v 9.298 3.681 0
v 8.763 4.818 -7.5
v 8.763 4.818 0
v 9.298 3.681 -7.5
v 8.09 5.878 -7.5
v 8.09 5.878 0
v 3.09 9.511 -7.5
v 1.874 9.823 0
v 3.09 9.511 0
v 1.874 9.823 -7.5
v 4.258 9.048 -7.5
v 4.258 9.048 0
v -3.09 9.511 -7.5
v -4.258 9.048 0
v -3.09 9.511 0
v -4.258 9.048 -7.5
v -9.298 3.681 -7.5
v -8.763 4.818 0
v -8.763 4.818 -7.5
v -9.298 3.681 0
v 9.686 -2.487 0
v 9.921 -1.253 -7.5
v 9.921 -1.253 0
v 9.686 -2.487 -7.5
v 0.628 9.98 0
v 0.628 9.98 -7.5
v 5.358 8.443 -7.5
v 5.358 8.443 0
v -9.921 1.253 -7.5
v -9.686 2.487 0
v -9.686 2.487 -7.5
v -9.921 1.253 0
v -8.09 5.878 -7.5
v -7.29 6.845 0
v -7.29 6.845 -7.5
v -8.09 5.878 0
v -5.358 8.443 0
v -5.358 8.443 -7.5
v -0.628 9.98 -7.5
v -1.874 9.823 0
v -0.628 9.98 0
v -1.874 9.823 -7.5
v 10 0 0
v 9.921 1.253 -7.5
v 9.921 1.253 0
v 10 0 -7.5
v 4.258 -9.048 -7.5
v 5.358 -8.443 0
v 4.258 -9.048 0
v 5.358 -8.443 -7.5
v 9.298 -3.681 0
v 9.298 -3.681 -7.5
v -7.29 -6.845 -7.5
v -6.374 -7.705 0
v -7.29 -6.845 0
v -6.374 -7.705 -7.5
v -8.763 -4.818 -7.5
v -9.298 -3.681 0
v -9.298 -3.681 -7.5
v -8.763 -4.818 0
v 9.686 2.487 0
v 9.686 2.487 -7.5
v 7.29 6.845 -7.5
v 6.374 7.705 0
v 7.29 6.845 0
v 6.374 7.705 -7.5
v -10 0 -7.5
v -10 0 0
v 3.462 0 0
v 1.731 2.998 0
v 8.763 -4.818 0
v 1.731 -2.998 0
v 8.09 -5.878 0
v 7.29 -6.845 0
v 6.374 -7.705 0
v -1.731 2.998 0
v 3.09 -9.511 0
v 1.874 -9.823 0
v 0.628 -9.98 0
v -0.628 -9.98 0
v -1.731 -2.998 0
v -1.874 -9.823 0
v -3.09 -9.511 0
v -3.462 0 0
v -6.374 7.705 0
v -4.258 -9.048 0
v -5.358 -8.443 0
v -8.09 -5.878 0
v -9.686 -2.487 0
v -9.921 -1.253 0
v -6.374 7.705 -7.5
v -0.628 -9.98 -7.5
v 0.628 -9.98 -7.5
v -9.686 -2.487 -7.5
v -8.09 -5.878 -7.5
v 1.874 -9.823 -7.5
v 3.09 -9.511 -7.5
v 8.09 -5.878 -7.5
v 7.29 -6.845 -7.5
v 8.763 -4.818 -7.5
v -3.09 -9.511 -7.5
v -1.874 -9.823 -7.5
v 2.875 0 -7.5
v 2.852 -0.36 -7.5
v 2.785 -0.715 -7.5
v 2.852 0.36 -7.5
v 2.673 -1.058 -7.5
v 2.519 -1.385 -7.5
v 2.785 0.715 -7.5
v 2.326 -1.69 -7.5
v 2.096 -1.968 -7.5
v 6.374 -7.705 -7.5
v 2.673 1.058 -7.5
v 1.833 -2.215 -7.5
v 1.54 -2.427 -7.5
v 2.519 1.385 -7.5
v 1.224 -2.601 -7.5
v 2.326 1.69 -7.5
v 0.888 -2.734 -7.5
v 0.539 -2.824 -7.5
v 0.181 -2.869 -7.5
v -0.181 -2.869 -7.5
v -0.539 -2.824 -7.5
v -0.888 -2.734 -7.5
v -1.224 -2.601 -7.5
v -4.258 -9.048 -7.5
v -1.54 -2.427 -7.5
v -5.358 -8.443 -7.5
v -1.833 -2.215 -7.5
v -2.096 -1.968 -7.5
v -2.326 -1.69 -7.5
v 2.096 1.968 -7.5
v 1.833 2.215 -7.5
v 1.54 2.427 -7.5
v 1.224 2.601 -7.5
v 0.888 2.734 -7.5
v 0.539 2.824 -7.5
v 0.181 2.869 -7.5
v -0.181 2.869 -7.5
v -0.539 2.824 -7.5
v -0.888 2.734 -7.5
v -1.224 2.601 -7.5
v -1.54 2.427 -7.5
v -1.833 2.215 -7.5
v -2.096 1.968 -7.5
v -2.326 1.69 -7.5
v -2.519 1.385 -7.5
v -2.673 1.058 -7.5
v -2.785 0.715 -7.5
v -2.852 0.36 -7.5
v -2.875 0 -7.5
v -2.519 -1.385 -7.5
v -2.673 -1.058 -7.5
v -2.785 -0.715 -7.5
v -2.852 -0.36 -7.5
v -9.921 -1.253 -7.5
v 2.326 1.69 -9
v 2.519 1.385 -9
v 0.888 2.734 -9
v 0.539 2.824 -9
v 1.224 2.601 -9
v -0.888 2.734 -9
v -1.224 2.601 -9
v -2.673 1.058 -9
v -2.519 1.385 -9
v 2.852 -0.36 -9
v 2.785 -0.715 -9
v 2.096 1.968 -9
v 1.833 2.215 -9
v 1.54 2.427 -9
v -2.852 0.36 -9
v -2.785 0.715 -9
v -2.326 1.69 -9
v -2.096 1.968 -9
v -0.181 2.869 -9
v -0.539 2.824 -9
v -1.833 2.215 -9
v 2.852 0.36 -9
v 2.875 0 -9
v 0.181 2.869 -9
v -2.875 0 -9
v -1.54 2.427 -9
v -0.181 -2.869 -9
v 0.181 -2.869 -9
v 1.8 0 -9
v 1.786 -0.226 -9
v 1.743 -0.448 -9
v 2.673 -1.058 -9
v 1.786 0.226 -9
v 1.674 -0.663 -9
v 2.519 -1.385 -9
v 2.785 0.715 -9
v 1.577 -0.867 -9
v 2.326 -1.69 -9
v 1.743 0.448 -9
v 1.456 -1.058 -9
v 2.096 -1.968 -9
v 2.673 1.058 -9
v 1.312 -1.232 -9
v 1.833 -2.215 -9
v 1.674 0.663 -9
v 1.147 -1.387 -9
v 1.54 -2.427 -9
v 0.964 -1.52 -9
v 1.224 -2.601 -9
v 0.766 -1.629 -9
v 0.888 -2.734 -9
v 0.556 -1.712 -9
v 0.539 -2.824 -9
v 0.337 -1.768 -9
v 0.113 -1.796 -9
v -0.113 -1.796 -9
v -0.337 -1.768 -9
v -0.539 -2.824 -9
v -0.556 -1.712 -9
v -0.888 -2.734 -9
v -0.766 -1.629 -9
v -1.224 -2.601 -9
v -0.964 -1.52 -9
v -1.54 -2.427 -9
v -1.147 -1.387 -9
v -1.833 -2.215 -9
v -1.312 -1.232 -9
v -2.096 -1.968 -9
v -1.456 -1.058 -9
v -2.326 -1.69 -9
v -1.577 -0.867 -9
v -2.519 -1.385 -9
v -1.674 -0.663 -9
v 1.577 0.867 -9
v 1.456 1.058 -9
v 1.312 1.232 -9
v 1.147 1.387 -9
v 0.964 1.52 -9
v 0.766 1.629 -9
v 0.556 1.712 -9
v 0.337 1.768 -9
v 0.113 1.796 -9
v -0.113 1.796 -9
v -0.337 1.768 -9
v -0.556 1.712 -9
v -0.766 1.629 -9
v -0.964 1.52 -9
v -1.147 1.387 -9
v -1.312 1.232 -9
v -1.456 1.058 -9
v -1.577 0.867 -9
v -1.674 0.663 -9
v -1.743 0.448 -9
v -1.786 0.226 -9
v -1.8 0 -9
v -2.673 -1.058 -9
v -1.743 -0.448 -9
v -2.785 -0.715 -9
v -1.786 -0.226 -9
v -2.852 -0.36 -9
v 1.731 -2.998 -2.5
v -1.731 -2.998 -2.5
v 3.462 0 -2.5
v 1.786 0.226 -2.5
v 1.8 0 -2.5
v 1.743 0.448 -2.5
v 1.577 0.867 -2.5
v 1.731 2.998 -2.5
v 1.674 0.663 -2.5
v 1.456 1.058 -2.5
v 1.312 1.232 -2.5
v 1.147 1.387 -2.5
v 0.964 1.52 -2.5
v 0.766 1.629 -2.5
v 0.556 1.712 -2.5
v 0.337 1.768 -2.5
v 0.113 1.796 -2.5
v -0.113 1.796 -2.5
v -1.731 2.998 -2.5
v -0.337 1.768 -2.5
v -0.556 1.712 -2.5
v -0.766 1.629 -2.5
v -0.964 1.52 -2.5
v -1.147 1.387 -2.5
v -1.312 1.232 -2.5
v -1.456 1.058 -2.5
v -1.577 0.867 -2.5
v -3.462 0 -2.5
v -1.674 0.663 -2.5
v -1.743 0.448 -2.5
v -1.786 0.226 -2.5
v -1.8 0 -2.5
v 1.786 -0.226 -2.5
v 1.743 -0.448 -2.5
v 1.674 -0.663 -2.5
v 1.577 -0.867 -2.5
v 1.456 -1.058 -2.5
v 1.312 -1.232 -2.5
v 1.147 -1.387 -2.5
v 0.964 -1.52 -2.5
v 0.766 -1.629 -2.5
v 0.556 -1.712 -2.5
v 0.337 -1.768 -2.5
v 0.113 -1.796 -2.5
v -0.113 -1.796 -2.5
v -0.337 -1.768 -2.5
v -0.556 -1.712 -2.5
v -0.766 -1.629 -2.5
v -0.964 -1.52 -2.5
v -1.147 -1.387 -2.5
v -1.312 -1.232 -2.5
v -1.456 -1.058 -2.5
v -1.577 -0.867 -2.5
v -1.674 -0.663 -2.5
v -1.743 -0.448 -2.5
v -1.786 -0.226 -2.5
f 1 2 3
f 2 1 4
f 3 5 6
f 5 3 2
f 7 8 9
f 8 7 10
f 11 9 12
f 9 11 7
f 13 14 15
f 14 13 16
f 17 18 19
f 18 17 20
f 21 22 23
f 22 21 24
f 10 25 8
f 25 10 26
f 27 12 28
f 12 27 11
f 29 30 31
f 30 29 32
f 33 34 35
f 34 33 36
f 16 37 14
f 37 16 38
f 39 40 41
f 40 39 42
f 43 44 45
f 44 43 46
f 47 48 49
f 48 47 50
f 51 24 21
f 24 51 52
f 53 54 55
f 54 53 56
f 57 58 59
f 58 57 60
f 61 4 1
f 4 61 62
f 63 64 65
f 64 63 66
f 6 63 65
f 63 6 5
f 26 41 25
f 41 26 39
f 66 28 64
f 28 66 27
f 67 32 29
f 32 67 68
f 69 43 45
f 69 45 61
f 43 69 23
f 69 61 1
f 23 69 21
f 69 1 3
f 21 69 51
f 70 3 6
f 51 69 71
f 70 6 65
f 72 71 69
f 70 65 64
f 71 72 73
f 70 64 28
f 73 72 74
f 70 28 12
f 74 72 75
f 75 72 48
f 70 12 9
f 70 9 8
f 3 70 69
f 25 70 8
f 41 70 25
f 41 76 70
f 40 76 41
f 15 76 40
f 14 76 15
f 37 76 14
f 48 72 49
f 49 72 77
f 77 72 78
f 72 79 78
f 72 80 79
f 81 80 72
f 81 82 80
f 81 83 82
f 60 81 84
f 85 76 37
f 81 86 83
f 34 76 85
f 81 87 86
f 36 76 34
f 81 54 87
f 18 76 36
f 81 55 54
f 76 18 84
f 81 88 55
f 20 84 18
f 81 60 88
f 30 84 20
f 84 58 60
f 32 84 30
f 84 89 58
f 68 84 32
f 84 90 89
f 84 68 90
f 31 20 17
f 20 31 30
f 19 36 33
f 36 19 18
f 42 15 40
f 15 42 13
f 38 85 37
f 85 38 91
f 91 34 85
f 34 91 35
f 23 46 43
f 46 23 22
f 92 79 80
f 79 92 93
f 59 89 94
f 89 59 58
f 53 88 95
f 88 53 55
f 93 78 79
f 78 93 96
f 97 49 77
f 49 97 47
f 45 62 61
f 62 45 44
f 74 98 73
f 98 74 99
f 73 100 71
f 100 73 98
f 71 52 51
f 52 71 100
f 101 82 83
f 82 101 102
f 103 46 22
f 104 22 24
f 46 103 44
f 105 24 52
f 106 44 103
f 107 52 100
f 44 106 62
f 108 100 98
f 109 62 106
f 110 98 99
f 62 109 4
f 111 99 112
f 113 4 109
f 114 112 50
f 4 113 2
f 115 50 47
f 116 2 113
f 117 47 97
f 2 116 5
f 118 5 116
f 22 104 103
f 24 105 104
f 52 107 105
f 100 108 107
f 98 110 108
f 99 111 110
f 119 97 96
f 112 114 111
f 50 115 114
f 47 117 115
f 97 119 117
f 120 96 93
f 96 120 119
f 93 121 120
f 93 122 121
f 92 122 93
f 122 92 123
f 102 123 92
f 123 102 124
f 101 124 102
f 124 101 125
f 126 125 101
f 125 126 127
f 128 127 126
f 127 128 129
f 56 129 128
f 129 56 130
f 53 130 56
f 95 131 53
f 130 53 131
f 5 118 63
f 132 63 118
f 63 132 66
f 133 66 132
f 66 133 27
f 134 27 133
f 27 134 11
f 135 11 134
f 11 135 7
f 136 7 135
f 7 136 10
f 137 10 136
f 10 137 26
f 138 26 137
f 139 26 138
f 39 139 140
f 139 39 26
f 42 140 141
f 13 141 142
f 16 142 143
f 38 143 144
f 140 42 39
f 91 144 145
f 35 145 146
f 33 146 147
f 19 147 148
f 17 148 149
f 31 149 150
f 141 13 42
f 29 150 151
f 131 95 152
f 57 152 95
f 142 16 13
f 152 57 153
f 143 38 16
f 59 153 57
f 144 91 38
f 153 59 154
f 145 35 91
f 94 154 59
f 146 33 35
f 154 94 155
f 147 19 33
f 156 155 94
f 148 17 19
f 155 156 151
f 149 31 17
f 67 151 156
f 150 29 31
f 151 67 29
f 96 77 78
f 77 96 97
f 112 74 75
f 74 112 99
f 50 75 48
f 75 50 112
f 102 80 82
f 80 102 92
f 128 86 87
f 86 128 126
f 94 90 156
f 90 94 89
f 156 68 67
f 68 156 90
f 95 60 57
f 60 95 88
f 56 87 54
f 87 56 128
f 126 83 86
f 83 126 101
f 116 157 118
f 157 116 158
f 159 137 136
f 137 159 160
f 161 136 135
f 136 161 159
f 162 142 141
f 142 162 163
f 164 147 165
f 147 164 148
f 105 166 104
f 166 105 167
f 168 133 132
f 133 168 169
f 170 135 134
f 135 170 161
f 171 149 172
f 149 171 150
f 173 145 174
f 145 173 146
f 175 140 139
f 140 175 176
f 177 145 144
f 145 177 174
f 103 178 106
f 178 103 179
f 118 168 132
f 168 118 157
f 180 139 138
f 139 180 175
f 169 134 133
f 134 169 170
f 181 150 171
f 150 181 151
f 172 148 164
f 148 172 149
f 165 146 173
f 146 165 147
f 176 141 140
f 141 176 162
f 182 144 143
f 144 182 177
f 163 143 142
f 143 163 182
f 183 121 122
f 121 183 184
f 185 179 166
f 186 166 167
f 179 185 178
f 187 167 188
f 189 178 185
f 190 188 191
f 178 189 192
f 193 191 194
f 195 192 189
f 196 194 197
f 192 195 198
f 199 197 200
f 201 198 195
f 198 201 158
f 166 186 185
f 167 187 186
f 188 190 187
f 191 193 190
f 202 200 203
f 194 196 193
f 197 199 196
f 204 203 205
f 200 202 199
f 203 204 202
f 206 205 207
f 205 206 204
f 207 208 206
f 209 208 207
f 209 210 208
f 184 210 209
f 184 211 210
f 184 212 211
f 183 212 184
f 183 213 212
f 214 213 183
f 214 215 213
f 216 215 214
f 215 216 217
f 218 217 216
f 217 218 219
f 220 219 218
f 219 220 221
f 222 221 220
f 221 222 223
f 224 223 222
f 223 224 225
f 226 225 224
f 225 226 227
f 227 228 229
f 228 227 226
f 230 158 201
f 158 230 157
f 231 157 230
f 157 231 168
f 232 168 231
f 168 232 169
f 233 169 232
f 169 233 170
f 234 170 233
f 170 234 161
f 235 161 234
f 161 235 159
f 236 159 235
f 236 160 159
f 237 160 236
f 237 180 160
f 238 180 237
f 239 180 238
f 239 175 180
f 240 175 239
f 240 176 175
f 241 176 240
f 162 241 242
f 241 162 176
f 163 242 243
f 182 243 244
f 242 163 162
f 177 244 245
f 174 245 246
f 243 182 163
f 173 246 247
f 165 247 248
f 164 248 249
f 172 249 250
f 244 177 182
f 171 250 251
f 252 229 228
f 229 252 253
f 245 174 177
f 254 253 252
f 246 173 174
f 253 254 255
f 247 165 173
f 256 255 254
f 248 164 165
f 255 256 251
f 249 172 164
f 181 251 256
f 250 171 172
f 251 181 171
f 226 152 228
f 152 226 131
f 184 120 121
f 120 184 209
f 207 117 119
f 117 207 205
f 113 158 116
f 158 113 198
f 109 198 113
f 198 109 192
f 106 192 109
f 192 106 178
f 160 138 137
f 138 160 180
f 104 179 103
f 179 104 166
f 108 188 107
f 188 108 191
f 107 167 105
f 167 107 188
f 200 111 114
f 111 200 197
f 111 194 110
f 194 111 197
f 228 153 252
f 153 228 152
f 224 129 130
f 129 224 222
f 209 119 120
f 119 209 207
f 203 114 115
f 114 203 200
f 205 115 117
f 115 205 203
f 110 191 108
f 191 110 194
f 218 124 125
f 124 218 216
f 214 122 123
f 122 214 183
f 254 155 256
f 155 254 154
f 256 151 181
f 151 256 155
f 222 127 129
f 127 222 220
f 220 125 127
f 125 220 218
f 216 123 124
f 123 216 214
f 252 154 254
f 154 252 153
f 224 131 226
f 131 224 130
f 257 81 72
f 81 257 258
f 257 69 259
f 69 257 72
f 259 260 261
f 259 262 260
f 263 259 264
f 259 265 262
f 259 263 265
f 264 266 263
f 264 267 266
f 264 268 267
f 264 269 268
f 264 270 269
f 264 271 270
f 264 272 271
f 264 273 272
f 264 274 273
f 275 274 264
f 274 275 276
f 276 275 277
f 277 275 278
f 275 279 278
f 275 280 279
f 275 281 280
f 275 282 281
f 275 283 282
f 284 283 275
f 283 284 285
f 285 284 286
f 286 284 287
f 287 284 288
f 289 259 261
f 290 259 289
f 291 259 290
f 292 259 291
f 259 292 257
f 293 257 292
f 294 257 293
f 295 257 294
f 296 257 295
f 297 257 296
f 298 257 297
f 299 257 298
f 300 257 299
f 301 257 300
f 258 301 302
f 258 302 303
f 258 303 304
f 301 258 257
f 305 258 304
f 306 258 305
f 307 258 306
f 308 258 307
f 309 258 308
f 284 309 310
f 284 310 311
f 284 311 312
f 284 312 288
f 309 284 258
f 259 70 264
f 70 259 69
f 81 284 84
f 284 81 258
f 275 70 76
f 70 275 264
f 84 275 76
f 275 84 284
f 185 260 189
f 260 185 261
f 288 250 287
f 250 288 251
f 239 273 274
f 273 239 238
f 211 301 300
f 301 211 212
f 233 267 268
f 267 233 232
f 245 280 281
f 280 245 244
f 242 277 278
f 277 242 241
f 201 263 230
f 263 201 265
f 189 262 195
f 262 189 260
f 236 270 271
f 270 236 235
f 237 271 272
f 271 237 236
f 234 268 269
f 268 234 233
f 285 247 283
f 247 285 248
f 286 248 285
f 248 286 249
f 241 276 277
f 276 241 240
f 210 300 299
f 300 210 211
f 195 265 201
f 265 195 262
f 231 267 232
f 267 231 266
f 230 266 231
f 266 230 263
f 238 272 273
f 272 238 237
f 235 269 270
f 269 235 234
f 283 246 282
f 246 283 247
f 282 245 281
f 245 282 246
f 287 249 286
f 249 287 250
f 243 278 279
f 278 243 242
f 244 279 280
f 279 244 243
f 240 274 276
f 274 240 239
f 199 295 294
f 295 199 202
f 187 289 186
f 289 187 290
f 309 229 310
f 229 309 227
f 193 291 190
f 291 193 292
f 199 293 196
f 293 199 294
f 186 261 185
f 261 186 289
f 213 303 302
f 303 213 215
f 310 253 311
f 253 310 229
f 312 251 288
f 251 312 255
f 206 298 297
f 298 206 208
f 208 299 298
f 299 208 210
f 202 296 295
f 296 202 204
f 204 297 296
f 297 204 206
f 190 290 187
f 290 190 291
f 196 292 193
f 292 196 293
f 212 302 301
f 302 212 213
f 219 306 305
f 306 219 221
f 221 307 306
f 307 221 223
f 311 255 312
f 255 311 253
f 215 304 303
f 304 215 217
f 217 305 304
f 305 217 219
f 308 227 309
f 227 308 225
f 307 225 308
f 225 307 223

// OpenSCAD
$fn = 50;


difference() {
	union() {
		translate(v = [0, 0, -7.5000000000]) {
			cylinder(h = 7.5000000000, r = 10.0000000000);
		}
		#translate(v = [0, 0, -9.0000000000]) {
			cylinder(h = 9, r = 2.8750000000);
		}
	}
	union() {
		translate(v = [0, 0, 0]) {
			rotate(a = [0, 0, 0]) {
				difference() {
					union() {
						translate(v = [0, 0, -2.5000000000]) {
							linear_extrude(height = 2.5000000000) {
								polygon(points = [[3.4620000000, 0.0000000000], [1.7310000000, 2.9981799479], [-1.7310000000, 2.9981799479], [-3.4620000000, 0.0000000000], [-1.7310000000, -2.9981799479], [1.7310000000, -2.9981799479]]);
							}
						}
					}
					union();
				}
			}
		}
		#translate(v = [0, 0, -100.0000000000]) {
			cylinder(h = 200, r = 1.8000000000);
		}
	}
}
